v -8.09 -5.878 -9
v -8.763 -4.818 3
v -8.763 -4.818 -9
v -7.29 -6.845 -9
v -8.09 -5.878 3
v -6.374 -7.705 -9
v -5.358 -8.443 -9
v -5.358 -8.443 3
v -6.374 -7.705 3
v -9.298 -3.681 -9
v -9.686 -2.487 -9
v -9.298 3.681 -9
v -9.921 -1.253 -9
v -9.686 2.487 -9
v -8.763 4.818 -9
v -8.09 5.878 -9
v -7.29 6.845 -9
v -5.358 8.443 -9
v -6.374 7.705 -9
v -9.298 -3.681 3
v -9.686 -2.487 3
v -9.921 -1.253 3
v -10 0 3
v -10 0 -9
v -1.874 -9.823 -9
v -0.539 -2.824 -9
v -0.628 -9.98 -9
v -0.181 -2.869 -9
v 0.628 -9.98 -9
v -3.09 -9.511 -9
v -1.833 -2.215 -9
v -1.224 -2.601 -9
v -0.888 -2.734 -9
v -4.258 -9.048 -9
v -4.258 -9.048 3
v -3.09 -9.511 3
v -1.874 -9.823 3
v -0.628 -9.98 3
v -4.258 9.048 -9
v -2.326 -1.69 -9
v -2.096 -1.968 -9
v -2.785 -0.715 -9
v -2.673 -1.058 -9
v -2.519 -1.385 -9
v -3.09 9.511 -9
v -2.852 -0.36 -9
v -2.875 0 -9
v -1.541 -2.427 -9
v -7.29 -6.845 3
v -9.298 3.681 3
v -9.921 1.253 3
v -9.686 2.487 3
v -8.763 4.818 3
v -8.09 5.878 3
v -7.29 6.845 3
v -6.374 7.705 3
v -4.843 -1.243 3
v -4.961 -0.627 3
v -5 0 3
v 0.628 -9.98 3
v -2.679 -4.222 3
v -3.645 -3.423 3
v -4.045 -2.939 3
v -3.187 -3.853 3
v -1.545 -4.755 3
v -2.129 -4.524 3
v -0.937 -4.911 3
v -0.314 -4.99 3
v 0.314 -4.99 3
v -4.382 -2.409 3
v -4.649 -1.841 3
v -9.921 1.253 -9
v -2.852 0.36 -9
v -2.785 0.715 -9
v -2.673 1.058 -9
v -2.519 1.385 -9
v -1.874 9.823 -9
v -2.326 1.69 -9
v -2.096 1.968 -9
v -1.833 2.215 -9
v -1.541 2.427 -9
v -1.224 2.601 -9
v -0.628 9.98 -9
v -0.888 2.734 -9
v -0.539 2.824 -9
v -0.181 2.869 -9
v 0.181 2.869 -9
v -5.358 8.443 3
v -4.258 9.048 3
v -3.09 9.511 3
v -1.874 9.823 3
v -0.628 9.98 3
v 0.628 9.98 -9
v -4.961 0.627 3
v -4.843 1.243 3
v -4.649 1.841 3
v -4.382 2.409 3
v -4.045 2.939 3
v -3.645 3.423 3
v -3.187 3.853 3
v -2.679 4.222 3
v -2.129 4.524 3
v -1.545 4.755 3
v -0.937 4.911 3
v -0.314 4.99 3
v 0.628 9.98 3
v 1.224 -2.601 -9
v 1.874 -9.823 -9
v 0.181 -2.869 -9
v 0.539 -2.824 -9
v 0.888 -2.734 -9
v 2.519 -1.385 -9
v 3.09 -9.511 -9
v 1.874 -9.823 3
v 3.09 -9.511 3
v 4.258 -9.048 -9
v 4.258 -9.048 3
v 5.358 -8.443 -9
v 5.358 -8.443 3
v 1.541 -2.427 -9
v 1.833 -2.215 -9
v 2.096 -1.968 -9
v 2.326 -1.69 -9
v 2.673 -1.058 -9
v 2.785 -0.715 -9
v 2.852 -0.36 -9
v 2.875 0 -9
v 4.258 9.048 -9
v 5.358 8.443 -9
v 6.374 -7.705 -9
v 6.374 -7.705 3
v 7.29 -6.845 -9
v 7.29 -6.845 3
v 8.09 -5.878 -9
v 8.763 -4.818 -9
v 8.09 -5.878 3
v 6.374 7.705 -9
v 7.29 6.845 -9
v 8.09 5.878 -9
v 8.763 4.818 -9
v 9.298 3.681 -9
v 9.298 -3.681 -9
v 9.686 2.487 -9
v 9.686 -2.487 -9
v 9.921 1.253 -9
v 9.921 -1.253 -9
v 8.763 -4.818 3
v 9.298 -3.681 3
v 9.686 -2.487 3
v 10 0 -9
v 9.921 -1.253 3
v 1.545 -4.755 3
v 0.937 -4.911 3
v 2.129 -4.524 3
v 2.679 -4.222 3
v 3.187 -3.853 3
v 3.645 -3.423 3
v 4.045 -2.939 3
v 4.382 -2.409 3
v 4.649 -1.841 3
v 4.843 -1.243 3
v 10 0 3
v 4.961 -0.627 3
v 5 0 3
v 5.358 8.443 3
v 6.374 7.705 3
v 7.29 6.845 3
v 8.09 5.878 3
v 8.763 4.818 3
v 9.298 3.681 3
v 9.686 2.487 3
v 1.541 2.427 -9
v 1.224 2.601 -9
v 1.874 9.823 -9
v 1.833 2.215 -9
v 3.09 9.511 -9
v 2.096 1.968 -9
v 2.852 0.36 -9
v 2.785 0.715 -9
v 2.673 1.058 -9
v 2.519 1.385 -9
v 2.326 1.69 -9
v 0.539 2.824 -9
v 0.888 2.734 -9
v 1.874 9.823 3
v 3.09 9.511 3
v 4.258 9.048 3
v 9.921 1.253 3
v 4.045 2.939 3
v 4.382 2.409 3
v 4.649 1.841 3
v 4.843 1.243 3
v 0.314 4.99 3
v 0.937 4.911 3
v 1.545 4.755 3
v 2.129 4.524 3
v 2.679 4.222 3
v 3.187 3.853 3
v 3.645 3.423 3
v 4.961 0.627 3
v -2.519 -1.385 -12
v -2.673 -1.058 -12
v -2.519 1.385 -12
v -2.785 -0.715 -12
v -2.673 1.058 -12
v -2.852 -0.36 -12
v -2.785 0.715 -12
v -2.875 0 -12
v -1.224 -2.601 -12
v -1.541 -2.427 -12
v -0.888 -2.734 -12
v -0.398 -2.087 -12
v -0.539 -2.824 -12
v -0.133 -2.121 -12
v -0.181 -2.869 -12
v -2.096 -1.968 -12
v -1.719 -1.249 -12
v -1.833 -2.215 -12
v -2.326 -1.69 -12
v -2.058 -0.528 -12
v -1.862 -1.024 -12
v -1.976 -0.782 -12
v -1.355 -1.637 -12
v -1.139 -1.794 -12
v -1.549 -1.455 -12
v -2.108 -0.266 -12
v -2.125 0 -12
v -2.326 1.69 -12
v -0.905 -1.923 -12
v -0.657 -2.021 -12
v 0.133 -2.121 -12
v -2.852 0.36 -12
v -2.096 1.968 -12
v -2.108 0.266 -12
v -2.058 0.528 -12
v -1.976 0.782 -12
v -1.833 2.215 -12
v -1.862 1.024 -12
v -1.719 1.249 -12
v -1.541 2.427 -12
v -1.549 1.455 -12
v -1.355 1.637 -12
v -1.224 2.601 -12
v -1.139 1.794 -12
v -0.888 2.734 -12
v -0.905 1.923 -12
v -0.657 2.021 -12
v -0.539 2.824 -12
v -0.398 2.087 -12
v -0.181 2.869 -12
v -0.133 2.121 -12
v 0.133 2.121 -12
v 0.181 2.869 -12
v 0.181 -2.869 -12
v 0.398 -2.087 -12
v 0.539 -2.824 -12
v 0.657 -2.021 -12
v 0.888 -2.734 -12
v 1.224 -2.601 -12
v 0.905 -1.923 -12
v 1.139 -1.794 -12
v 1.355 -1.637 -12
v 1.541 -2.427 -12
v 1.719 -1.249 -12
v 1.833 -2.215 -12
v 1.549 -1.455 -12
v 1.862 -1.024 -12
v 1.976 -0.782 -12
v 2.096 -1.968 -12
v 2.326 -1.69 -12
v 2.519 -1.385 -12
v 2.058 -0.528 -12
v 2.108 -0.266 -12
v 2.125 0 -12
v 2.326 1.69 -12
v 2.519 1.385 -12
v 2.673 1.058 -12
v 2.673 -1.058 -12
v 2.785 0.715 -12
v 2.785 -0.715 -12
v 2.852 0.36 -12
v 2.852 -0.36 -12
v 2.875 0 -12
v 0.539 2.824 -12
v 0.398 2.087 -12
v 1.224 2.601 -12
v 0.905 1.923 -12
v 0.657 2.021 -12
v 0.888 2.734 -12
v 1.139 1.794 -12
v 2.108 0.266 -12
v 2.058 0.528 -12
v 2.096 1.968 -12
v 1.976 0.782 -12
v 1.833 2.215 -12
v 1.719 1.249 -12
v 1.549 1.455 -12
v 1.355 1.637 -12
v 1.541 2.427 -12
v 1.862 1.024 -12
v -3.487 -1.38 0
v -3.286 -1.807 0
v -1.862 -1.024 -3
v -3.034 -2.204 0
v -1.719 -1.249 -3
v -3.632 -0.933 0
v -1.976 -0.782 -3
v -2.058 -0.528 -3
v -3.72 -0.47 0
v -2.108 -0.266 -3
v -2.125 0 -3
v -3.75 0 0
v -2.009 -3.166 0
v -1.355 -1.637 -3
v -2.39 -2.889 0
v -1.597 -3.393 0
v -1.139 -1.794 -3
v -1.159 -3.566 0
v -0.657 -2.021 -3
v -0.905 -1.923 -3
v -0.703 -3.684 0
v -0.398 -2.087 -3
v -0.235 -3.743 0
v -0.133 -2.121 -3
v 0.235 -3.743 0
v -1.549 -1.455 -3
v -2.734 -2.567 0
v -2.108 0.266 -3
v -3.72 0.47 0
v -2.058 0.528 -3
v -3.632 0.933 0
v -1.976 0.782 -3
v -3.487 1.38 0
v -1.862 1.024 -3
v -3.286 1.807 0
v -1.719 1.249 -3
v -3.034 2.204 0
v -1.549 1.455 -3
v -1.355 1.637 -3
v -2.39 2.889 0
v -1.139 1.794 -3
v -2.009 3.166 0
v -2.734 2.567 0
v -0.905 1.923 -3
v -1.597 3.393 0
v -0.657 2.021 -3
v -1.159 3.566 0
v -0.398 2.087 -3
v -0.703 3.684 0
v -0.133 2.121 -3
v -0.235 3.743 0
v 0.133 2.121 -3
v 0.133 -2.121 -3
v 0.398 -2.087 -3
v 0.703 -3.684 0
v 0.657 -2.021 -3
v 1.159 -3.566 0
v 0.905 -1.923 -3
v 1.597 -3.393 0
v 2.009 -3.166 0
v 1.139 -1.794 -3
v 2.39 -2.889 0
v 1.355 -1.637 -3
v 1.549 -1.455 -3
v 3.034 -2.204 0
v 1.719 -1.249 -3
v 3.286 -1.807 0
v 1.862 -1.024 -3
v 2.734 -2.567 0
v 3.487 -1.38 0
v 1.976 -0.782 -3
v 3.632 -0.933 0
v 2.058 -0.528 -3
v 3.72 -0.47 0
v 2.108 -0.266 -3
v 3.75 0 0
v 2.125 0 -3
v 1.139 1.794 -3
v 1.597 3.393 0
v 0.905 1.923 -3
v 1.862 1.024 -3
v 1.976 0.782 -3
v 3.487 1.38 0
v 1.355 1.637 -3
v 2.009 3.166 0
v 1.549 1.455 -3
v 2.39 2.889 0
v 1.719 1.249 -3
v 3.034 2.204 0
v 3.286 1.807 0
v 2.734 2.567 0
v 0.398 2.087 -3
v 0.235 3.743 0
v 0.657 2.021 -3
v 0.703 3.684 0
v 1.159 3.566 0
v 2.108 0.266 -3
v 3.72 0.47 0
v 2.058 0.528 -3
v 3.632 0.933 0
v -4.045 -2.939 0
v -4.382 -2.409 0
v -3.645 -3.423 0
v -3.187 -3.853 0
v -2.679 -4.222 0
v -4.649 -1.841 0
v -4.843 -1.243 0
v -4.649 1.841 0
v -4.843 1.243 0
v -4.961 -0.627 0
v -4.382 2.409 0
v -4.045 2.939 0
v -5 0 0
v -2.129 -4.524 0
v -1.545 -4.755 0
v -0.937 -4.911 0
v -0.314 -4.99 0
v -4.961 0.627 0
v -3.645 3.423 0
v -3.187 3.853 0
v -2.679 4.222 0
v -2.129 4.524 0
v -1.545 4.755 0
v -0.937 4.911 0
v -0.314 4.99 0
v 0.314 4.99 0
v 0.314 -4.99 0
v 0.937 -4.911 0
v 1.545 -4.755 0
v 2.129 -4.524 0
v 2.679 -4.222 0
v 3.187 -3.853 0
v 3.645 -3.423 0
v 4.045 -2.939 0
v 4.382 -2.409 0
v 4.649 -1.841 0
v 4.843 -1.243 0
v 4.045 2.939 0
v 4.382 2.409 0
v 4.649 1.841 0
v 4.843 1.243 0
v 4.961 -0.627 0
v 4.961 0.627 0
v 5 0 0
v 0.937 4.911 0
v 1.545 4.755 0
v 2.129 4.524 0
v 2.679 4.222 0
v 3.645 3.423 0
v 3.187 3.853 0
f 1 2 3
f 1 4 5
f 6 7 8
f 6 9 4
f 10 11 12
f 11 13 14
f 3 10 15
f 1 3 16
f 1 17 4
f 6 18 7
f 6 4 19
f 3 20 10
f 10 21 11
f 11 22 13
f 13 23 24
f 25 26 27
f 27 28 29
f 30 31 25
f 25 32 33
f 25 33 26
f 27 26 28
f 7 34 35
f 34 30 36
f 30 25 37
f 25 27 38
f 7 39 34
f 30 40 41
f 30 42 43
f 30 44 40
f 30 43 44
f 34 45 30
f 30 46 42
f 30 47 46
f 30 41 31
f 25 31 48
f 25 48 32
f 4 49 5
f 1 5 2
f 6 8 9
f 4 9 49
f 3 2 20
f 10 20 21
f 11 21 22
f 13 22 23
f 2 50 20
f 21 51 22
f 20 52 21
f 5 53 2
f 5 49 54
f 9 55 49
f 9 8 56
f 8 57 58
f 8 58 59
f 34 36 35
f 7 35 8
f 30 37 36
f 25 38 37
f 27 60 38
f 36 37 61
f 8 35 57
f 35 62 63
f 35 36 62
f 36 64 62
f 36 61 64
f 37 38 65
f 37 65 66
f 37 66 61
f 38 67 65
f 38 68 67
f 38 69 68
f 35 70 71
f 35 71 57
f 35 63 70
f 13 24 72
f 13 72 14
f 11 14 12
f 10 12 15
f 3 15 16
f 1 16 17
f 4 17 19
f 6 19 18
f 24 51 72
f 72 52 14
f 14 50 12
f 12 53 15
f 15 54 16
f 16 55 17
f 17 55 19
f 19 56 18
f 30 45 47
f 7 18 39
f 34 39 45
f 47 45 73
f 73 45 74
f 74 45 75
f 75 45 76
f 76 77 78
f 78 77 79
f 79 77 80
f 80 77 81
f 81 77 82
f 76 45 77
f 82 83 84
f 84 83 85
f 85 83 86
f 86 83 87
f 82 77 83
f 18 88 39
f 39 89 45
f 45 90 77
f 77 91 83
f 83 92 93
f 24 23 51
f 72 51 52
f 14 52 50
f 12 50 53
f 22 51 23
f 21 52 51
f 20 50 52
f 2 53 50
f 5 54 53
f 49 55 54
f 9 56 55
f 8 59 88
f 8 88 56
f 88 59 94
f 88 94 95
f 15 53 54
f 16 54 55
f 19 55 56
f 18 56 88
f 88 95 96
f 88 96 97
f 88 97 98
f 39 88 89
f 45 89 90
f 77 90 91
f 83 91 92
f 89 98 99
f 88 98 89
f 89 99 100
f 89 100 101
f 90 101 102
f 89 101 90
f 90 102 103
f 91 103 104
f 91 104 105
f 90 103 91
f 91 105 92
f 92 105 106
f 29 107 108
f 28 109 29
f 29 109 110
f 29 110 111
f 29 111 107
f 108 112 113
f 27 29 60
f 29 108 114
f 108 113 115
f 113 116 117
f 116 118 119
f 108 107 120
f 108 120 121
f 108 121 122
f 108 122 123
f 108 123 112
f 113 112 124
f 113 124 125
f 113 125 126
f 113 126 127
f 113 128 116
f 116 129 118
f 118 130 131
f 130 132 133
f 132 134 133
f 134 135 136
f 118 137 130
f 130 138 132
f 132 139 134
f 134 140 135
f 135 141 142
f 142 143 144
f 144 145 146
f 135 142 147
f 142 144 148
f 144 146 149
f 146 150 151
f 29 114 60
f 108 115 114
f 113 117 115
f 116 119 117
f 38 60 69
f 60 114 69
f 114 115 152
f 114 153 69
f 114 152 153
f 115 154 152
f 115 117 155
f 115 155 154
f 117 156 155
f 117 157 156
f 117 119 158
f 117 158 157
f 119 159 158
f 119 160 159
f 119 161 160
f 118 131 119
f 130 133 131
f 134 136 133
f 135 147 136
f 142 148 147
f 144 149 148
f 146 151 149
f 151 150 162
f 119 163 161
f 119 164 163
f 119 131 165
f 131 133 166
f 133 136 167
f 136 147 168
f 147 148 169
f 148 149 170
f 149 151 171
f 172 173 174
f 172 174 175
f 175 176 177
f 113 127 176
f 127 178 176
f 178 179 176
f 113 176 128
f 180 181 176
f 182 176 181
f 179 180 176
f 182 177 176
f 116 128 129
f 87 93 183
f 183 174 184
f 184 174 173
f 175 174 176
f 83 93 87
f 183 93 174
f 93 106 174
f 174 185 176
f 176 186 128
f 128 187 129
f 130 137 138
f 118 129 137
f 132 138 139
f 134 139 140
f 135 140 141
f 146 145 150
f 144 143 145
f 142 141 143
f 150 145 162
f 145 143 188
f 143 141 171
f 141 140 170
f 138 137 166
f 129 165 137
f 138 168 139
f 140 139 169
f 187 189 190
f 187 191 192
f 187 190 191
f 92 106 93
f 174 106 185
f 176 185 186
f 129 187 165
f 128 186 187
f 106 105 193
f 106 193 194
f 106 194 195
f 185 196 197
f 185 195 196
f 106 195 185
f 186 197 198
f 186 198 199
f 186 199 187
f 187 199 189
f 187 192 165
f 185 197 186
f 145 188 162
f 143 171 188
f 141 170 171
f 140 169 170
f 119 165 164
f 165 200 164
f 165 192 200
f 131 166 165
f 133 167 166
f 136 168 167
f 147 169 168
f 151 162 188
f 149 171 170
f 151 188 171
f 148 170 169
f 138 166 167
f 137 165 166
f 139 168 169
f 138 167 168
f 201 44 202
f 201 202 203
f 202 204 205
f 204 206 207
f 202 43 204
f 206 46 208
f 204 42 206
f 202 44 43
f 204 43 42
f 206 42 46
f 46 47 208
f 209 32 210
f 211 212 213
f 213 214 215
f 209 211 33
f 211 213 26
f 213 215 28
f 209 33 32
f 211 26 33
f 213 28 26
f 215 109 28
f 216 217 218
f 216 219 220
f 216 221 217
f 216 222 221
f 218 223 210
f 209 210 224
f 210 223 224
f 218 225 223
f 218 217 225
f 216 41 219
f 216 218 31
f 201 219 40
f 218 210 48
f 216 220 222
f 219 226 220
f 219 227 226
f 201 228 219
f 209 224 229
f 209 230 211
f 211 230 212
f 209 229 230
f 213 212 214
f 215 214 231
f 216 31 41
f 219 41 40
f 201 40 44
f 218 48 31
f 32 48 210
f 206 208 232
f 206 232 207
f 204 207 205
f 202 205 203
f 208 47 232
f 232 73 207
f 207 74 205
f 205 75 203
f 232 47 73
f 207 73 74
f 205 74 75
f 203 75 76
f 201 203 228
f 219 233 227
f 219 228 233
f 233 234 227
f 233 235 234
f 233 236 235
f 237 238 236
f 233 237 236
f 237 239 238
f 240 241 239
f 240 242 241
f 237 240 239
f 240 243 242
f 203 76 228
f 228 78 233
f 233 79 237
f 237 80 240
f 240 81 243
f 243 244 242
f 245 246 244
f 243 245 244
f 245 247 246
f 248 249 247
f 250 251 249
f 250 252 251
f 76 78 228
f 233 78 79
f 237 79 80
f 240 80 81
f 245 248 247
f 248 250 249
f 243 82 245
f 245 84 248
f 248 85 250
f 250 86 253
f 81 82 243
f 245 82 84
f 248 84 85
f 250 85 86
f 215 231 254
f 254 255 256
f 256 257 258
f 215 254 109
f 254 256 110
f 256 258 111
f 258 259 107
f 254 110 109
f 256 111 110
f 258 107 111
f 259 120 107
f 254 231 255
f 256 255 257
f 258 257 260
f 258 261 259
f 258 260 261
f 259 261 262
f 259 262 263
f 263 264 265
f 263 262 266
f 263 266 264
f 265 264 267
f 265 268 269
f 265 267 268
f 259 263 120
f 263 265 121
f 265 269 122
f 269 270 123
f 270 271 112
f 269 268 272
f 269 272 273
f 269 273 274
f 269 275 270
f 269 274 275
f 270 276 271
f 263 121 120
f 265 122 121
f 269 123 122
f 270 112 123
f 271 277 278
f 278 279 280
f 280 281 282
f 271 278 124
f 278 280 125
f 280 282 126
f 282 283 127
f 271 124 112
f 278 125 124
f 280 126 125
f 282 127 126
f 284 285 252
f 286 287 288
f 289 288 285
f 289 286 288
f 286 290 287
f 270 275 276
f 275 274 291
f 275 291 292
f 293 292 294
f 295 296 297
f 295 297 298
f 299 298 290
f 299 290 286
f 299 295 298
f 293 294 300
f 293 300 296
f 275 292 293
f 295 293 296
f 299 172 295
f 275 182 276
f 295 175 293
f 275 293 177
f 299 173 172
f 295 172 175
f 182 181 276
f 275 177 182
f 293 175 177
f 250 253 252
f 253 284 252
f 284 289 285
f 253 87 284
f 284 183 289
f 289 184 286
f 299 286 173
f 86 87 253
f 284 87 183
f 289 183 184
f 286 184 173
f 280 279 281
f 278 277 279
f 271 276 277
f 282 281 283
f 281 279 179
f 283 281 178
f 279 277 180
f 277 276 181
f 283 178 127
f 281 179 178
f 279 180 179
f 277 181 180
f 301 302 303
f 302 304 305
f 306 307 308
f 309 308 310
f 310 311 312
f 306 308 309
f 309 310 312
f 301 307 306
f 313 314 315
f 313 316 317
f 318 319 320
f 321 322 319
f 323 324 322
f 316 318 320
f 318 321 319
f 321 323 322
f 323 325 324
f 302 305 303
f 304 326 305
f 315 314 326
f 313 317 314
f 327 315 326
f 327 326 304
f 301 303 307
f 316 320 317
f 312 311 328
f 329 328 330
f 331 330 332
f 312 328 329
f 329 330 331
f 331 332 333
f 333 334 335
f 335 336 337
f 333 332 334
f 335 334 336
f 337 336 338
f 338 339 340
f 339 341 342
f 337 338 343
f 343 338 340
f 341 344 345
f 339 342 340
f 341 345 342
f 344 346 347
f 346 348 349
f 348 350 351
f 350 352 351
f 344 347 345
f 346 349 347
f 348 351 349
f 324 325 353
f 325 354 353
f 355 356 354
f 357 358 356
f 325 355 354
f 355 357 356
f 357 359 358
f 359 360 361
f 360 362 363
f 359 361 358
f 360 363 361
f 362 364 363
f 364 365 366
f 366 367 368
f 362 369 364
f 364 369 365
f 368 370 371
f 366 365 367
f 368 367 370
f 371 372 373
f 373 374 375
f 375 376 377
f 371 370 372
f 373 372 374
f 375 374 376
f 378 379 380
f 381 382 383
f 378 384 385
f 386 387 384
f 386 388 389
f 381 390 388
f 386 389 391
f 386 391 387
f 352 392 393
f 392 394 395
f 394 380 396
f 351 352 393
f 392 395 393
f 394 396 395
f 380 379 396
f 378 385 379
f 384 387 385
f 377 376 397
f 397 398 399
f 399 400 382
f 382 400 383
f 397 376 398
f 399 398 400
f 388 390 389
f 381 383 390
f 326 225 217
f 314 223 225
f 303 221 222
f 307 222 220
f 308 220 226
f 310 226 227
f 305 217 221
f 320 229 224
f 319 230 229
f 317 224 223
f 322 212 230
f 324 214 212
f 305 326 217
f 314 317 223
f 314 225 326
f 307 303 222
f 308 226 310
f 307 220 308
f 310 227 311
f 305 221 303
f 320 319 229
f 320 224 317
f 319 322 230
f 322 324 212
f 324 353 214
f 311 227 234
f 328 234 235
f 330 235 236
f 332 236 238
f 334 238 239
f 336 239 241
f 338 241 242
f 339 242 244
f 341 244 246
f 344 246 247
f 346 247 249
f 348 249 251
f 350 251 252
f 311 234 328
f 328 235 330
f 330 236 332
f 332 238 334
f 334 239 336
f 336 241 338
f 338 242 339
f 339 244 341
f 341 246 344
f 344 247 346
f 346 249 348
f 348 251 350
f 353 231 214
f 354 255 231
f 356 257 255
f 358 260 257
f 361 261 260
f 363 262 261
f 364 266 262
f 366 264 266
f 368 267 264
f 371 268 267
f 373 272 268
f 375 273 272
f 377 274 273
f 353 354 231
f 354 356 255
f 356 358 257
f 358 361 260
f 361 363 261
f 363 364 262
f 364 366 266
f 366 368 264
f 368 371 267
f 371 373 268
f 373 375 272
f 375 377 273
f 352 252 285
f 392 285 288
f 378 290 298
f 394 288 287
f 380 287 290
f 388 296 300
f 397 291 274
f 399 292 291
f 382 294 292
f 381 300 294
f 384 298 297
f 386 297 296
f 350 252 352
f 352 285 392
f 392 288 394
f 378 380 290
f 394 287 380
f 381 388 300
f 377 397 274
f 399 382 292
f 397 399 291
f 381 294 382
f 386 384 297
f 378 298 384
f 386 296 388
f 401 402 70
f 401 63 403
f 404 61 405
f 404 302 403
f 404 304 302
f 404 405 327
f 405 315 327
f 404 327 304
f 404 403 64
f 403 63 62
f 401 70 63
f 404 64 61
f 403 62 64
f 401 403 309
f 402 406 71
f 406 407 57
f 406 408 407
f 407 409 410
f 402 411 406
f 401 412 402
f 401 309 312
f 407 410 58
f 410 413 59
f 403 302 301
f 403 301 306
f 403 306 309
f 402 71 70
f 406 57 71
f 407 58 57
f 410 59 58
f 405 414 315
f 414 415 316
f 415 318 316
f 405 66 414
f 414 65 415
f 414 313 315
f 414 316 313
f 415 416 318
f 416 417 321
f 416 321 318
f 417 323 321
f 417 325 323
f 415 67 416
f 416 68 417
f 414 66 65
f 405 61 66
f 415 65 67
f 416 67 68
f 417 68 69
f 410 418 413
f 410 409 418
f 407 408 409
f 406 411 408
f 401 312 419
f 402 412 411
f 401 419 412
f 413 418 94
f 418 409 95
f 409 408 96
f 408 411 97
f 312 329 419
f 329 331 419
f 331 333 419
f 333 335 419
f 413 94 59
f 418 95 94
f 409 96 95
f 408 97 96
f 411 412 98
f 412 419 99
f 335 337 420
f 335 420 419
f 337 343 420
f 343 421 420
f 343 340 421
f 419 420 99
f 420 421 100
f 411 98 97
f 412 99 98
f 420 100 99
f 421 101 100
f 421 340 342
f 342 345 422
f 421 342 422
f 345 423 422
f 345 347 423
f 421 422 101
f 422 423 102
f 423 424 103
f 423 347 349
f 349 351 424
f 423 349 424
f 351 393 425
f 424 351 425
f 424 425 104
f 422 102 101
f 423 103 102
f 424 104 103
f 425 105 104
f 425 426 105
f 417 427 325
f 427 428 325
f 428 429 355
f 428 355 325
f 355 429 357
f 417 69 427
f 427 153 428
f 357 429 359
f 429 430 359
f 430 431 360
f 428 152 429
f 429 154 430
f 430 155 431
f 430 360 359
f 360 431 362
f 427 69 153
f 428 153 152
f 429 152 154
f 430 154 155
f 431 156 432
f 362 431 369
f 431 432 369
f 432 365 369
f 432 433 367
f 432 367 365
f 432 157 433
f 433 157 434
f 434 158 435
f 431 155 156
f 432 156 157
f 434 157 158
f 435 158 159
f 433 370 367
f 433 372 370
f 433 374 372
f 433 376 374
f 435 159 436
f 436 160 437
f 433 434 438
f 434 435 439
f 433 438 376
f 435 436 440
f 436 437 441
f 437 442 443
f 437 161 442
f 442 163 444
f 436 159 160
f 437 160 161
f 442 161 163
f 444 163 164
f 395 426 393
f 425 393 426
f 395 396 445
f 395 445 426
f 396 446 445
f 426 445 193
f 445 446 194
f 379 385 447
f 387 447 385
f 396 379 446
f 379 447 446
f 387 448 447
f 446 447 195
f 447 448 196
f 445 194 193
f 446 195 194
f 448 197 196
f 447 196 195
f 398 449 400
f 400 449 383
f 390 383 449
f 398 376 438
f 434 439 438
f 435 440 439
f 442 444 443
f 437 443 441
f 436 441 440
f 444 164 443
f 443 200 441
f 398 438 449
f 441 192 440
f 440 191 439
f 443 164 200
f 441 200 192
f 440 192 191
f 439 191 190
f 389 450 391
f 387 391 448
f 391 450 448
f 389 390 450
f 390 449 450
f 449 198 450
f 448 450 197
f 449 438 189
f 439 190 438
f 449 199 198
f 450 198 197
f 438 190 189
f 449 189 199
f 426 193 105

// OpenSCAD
$fn = 50;


difference() {
	union() {
		translate(v = [0, 0, -9.0000000000]) {
			cylinder(h = 12, r = 10.0000000000);
		}
		#translate(v = [0, 0, -12.0000000000]) {
			cylinder(h = 12, r = 2.8750000000);
		}
	}
	union() {
		translate(v = [0, 0, 0]) {
			rotate(a = [0, 0, 0]) {
				difference() {
					union() {
						translate(v = [0, 0, -12.0000000000]) {
							cylinder(h = 12, r = 2.0000000000);
						}
						translate(v = [0, 0, -3]) {
							cylinder(h = 3, r1 = 2.1250000000, r2 = 3.7500000000);
						}
						translate(v = [0, 0, -12.0000000000]) {
							cylinder(h = 12, r = 2.1250000000);
						}
						translate(v = [0, 0, -12.0000000000]) {
							cylinder(h = 12, r = 2.0000000000);
						}
					}
					union();
				}
			}
		}
		#cylinder(h = 3, r = 5.0000000000);
	}
}
